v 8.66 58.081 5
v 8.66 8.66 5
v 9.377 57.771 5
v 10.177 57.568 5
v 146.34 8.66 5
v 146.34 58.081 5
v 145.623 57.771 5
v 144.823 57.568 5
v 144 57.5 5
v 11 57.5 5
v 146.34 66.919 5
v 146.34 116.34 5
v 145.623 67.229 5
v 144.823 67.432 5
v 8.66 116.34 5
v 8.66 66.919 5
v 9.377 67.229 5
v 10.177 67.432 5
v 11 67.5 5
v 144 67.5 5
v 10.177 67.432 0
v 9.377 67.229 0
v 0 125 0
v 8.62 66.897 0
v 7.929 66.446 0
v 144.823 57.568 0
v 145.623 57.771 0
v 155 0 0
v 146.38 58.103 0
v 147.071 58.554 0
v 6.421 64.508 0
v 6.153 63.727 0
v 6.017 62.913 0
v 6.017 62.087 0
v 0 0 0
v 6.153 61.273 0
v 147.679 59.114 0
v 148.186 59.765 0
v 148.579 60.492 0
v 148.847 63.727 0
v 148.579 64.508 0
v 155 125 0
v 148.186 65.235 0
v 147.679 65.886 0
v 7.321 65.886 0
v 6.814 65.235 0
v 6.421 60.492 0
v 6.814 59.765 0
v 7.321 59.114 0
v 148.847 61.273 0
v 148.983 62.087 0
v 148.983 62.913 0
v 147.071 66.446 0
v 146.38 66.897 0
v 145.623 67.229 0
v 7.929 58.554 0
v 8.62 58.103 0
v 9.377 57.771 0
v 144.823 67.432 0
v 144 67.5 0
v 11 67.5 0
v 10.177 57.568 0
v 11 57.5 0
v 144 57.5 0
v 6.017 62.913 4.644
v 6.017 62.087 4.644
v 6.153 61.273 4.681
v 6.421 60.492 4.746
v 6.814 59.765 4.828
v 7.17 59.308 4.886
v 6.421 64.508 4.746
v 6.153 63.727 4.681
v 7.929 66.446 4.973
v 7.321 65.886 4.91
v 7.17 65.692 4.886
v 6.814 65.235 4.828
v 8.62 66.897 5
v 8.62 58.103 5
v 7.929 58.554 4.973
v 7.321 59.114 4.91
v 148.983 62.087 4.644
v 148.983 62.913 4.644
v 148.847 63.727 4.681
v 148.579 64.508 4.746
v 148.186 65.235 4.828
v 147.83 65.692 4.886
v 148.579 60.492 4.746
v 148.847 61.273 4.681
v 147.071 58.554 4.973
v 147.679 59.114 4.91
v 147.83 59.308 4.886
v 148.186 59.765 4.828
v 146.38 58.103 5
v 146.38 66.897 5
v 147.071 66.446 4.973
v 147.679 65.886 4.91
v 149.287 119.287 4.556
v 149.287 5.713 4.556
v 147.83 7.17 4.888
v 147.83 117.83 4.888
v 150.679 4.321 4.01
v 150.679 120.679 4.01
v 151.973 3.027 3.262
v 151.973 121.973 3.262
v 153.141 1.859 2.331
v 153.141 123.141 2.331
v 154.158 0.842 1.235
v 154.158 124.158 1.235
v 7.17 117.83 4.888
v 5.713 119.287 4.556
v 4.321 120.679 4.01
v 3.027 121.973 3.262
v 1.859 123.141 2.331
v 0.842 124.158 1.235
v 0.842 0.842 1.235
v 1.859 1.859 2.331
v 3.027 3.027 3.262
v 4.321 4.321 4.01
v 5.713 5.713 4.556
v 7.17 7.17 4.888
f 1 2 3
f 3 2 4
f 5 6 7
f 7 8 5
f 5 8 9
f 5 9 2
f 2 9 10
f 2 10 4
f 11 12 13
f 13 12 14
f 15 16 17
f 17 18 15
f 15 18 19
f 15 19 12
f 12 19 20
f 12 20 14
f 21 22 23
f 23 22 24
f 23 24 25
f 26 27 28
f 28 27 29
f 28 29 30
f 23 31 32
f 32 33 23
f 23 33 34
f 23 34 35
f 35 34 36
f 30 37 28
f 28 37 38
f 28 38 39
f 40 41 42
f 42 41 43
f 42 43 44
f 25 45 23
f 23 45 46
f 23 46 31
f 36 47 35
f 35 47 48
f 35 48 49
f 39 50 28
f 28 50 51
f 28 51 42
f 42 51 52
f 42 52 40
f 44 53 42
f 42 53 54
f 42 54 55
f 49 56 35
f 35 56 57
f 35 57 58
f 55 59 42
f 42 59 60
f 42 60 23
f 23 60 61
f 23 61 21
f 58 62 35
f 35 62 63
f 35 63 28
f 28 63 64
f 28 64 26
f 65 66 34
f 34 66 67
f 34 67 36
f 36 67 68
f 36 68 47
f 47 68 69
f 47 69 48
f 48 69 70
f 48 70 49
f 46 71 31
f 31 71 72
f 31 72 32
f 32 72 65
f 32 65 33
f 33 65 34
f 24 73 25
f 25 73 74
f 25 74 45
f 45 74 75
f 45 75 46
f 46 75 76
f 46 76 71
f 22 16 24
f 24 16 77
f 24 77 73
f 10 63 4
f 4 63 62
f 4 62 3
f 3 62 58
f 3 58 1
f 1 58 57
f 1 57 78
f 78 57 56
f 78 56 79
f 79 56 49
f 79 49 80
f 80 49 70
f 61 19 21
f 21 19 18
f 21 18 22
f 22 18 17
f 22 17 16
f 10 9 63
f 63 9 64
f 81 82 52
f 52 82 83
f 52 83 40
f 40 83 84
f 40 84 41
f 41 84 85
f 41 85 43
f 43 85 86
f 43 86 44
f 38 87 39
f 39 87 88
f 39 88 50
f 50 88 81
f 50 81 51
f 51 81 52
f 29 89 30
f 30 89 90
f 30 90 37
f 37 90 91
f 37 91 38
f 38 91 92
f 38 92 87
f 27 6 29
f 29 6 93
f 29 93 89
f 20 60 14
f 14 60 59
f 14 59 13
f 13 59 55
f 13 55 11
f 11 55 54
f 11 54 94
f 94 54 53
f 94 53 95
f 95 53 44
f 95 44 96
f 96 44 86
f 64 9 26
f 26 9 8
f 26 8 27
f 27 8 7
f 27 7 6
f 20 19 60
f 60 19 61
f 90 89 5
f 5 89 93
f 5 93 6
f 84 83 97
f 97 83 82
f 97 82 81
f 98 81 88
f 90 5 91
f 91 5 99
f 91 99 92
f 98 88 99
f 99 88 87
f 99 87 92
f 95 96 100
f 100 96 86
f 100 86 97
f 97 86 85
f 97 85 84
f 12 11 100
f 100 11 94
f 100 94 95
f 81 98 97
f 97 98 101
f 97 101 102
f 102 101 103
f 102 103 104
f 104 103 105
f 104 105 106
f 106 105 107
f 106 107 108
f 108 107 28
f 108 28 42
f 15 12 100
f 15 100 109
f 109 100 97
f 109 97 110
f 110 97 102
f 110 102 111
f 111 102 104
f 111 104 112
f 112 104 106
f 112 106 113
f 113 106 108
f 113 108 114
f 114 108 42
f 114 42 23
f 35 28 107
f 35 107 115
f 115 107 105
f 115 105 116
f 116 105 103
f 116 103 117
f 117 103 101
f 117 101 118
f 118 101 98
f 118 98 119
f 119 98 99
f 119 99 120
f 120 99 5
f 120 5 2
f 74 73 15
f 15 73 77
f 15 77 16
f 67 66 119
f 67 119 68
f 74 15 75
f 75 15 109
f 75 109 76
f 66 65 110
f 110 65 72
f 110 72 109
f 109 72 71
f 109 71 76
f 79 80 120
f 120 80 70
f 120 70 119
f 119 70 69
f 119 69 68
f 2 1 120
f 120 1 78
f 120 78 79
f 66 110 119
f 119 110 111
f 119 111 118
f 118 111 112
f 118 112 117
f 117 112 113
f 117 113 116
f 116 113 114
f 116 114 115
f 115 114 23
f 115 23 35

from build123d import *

# Parameters (mm, degrees)
SKETCH_1_W      = 155
SKETCH_1_H      = 125
EXTRUDE_1_DEPTH = 5
FILLET_1_R      = 10


with BuildPart() as part:
    # 草图1 → 凸台-拉伸1 (new body)
    with BuildSketch(Plane.XY):
        with Locations((77.5, 62.5)):
            Rectangle(SKETCH_1_W, SKETCH_1_H)
        with BuildLine():
            Line((11, 67.5), (144, 67.5))
            ThreePointArc((144, 67.5), (149, 62.5), (144, 57.5))
            Line((144, 57.5), (11, 57.5))
            ThreePointArc((11, 57.5), (6, 62.5), (11, 67.5))
        make_face(mode=Mode.SUBTRACT)
    extrude(amount=EXTRUDE_1_DEPTH)

    # 圆角1
    # the kernel refuses this fillet: 10 mm, written as the material it takes off along each edge
    with BuildSketch(Plane(origin=(0, 146.650635095, 5), x_dir=(0, 0, -1), z_dir=(0, -1, 0)), Plane(origin=(155, -21.650635095, 5), x_dir=(0, 0, -1), z_dir=(0, 1, 0))) as fillet_1_piece_1:
        with BuildLine():
            CenterArc((10, 8.660254038), FILLET_1_R, 180, 60)
            Line((0, 8.660254038), (-0.2, 8.660254038))
            Line((-0.2, 8.660254038), (-0.2, 0))
            Line((-0.2, 0), (0, -0.2))
            ThreePointArc((0, -0.2), (2.5, -0.2), (4.9, -0.173205081))
            Line((4.9, -0.173205081), (5, 0))
        make_face()
    extrude(amount=168.301270189, mode=Mode.SUBTRACT)
    with BuildSketch(Plane(origin=(-21.650635095, 0, 5), x_dir=(0, 0, -1), z_dir=(1, 0, 0)), Plane(origin=(176.650635095, 125, 5), x_dir=(0, 0, -1), z_dir=(-1, 0, 0))) as fillet_1_piece_2:
        with BuildLine():
            CenterArc((10, 8.660254038), FILLET_1_R, 180, 60)
            Line((0, 8.660254038), (-0.2, 8.660254038))
            Line((-0.2, 8.660254038), (-0.2, 0))
            Line((-0.2, 0), (0, -0.2))
            ThreePointArc((0, -0.2), (2.5, -0.2), (4.9, -0.173205081))
            Line((4.9, -0.173205081), (5, 0))
        make_face()
    extrude(amount=198.301270189, mode=Mode.SUBTRACT)


solid = part.part
